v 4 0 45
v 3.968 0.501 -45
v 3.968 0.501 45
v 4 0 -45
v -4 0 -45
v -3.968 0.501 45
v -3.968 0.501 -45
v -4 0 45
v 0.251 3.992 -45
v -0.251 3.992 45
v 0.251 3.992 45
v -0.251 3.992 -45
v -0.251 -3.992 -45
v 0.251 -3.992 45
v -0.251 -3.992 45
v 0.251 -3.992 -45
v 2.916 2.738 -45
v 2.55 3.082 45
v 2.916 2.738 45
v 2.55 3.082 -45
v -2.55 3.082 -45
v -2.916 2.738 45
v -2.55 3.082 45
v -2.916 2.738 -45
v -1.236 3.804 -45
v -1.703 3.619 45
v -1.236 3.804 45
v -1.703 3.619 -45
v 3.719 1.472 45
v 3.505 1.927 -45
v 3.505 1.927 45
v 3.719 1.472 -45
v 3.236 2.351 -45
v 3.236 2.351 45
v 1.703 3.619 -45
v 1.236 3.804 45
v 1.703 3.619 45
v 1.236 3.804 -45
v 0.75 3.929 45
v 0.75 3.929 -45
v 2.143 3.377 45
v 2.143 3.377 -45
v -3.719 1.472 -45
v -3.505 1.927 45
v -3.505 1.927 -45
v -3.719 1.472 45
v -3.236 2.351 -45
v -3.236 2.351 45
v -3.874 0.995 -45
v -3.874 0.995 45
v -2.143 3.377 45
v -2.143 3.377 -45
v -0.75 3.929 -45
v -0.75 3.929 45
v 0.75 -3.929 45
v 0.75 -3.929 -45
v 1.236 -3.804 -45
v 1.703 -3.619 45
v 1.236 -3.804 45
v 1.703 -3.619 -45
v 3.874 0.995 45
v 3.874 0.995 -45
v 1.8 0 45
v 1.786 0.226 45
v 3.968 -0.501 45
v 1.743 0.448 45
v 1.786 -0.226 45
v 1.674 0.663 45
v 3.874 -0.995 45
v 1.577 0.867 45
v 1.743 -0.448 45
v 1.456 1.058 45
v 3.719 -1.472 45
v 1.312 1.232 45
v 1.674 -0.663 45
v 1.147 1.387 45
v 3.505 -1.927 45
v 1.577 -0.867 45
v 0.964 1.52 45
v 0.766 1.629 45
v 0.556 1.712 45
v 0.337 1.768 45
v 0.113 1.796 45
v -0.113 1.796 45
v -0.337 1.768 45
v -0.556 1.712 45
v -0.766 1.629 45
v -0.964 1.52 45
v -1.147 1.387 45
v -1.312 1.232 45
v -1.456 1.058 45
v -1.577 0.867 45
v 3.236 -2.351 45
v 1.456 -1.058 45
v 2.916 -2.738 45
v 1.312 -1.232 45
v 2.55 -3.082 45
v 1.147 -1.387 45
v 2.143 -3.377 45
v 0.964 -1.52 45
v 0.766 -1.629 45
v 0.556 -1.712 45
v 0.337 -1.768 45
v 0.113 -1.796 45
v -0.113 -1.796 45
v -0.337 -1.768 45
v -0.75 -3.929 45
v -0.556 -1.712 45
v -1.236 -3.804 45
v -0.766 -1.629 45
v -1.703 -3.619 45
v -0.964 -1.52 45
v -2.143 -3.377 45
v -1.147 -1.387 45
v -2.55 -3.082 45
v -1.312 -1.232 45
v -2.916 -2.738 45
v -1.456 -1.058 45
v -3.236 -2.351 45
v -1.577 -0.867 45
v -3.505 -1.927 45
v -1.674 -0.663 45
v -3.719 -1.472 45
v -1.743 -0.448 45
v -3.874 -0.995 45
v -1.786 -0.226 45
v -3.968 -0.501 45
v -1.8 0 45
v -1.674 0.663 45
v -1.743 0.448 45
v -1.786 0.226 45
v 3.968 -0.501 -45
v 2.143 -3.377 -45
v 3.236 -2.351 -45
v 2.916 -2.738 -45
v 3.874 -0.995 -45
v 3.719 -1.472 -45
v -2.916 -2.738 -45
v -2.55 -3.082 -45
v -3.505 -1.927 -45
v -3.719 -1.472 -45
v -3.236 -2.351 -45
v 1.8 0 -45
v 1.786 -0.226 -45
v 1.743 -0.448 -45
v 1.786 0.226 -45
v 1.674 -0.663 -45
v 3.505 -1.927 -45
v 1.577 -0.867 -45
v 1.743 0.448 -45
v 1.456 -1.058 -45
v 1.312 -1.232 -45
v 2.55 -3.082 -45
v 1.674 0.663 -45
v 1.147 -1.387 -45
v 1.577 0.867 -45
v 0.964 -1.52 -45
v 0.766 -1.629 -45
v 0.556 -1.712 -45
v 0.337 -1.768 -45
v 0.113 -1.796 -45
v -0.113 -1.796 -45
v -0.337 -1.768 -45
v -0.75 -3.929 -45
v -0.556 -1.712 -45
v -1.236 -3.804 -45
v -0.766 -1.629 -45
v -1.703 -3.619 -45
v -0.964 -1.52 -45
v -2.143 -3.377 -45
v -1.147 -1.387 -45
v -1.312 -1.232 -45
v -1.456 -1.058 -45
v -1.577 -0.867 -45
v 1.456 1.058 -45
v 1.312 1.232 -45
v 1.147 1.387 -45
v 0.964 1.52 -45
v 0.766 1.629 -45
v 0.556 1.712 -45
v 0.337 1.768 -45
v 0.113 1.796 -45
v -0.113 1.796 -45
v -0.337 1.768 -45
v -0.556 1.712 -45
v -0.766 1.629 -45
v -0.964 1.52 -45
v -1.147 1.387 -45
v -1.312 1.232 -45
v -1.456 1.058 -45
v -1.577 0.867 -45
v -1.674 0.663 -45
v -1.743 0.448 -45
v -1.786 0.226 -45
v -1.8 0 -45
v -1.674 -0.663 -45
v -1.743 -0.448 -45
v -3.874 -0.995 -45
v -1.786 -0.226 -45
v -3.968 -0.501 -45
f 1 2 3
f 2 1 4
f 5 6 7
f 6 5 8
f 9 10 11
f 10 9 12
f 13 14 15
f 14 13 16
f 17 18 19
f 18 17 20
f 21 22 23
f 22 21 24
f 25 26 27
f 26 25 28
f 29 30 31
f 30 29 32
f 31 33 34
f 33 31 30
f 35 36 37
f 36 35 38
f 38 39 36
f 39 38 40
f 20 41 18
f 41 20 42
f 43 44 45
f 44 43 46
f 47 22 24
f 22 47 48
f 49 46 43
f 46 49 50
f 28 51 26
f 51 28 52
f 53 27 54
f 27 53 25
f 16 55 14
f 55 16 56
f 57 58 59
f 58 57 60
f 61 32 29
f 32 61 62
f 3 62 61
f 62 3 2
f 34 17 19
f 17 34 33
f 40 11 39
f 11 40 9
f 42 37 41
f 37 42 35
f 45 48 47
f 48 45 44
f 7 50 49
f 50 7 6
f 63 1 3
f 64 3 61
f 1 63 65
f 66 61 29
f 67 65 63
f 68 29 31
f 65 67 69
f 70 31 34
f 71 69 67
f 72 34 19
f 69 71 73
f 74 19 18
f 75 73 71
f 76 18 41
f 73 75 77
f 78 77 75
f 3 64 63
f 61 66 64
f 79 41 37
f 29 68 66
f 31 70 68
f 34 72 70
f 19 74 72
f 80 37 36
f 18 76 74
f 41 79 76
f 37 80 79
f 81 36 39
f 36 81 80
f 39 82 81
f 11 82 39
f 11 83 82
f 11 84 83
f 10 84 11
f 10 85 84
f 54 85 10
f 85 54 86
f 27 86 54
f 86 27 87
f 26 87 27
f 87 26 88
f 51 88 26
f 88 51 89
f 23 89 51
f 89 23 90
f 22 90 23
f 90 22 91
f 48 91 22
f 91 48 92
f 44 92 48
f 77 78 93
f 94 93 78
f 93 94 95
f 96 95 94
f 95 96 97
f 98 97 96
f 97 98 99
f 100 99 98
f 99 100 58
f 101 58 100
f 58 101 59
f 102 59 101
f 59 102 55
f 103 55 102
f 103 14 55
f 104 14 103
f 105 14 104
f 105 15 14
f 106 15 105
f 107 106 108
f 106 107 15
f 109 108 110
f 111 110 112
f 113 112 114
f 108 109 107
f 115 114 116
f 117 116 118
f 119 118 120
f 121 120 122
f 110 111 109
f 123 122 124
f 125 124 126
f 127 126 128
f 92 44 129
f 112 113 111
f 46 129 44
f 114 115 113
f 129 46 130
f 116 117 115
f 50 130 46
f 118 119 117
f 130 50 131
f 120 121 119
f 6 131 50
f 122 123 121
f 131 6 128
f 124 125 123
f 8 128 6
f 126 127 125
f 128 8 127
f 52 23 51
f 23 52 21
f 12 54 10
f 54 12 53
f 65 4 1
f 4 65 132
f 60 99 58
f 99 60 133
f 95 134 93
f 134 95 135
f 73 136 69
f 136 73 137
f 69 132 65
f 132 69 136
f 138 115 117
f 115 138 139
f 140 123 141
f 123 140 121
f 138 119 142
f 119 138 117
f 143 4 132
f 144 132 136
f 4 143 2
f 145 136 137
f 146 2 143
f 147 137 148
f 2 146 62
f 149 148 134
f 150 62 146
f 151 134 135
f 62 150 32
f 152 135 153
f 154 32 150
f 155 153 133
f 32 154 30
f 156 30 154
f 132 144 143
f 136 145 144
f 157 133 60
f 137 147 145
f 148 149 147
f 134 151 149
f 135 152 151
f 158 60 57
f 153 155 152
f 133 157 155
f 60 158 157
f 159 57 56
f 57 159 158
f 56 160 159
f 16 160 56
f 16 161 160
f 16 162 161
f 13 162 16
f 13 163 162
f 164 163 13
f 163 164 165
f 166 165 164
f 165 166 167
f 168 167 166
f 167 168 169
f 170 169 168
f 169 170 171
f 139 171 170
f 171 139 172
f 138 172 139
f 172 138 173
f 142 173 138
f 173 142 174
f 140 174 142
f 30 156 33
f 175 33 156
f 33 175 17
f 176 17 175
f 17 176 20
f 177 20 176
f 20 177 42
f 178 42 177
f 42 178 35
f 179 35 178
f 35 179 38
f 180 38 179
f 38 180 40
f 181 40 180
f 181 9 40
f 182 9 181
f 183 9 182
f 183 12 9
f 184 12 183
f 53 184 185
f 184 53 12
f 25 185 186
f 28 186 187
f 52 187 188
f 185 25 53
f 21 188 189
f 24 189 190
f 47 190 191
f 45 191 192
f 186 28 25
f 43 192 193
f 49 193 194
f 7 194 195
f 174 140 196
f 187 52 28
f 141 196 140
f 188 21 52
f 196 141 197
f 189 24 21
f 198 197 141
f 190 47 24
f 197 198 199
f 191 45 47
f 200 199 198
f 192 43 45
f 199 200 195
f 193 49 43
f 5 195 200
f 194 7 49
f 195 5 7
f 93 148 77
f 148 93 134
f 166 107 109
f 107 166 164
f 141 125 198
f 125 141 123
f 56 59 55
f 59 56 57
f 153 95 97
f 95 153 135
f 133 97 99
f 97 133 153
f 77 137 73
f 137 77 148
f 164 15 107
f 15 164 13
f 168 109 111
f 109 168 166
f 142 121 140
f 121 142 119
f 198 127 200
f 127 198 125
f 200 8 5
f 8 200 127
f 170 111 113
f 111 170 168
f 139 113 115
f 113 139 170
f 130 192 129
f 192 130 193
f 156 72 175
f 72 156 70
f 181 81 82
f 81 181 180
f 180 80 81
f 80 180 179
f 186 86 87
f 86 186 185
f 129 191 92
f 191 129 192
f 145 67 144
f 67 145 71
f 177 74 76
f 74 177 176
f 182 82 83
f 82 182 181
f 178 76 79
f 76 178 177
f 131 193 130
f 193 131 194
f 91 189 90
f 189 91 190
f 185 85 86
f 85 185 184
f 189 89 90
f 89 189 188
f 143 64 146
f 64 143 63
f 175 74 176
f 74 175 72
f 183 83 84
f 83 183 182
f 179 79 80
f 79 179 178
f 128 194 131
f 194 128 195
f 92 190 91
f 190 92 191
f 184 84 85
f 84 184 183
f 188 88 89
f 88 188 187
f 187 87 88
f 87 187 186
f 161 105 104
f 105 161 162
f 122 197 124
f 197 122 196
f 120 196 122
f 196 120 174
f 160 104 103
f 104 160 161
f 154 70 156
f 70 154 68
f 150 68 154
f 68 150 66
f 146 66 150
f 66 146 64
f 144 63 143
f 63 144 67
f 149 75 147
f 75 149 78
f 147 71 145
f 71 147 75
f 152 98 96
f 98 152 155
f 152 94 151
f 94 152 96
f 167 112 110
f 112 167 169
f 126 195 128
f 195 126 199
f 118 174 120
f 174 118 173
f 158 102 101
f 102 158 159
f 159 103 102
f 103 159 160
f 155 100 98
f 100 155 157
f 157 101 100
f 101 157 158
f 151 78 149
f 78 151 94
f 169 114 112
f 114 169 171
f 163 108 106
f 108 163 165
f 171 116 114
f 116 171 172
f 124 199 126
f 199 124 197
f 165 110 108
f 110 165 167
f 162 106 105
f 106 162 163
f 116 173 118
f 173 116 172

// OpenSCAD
$fn = 50;


difference() {
	union() {
		translate(v = [0, 0, -45.0000000000]) {
			cylinder(h = 90, r = 4.0000000000);
		}
	}
	union() {
		translate(v = [0, 0, -100.0000000000]) {
			cylinder(h = 200, r = 1.8000000000);
		}
	}
}
